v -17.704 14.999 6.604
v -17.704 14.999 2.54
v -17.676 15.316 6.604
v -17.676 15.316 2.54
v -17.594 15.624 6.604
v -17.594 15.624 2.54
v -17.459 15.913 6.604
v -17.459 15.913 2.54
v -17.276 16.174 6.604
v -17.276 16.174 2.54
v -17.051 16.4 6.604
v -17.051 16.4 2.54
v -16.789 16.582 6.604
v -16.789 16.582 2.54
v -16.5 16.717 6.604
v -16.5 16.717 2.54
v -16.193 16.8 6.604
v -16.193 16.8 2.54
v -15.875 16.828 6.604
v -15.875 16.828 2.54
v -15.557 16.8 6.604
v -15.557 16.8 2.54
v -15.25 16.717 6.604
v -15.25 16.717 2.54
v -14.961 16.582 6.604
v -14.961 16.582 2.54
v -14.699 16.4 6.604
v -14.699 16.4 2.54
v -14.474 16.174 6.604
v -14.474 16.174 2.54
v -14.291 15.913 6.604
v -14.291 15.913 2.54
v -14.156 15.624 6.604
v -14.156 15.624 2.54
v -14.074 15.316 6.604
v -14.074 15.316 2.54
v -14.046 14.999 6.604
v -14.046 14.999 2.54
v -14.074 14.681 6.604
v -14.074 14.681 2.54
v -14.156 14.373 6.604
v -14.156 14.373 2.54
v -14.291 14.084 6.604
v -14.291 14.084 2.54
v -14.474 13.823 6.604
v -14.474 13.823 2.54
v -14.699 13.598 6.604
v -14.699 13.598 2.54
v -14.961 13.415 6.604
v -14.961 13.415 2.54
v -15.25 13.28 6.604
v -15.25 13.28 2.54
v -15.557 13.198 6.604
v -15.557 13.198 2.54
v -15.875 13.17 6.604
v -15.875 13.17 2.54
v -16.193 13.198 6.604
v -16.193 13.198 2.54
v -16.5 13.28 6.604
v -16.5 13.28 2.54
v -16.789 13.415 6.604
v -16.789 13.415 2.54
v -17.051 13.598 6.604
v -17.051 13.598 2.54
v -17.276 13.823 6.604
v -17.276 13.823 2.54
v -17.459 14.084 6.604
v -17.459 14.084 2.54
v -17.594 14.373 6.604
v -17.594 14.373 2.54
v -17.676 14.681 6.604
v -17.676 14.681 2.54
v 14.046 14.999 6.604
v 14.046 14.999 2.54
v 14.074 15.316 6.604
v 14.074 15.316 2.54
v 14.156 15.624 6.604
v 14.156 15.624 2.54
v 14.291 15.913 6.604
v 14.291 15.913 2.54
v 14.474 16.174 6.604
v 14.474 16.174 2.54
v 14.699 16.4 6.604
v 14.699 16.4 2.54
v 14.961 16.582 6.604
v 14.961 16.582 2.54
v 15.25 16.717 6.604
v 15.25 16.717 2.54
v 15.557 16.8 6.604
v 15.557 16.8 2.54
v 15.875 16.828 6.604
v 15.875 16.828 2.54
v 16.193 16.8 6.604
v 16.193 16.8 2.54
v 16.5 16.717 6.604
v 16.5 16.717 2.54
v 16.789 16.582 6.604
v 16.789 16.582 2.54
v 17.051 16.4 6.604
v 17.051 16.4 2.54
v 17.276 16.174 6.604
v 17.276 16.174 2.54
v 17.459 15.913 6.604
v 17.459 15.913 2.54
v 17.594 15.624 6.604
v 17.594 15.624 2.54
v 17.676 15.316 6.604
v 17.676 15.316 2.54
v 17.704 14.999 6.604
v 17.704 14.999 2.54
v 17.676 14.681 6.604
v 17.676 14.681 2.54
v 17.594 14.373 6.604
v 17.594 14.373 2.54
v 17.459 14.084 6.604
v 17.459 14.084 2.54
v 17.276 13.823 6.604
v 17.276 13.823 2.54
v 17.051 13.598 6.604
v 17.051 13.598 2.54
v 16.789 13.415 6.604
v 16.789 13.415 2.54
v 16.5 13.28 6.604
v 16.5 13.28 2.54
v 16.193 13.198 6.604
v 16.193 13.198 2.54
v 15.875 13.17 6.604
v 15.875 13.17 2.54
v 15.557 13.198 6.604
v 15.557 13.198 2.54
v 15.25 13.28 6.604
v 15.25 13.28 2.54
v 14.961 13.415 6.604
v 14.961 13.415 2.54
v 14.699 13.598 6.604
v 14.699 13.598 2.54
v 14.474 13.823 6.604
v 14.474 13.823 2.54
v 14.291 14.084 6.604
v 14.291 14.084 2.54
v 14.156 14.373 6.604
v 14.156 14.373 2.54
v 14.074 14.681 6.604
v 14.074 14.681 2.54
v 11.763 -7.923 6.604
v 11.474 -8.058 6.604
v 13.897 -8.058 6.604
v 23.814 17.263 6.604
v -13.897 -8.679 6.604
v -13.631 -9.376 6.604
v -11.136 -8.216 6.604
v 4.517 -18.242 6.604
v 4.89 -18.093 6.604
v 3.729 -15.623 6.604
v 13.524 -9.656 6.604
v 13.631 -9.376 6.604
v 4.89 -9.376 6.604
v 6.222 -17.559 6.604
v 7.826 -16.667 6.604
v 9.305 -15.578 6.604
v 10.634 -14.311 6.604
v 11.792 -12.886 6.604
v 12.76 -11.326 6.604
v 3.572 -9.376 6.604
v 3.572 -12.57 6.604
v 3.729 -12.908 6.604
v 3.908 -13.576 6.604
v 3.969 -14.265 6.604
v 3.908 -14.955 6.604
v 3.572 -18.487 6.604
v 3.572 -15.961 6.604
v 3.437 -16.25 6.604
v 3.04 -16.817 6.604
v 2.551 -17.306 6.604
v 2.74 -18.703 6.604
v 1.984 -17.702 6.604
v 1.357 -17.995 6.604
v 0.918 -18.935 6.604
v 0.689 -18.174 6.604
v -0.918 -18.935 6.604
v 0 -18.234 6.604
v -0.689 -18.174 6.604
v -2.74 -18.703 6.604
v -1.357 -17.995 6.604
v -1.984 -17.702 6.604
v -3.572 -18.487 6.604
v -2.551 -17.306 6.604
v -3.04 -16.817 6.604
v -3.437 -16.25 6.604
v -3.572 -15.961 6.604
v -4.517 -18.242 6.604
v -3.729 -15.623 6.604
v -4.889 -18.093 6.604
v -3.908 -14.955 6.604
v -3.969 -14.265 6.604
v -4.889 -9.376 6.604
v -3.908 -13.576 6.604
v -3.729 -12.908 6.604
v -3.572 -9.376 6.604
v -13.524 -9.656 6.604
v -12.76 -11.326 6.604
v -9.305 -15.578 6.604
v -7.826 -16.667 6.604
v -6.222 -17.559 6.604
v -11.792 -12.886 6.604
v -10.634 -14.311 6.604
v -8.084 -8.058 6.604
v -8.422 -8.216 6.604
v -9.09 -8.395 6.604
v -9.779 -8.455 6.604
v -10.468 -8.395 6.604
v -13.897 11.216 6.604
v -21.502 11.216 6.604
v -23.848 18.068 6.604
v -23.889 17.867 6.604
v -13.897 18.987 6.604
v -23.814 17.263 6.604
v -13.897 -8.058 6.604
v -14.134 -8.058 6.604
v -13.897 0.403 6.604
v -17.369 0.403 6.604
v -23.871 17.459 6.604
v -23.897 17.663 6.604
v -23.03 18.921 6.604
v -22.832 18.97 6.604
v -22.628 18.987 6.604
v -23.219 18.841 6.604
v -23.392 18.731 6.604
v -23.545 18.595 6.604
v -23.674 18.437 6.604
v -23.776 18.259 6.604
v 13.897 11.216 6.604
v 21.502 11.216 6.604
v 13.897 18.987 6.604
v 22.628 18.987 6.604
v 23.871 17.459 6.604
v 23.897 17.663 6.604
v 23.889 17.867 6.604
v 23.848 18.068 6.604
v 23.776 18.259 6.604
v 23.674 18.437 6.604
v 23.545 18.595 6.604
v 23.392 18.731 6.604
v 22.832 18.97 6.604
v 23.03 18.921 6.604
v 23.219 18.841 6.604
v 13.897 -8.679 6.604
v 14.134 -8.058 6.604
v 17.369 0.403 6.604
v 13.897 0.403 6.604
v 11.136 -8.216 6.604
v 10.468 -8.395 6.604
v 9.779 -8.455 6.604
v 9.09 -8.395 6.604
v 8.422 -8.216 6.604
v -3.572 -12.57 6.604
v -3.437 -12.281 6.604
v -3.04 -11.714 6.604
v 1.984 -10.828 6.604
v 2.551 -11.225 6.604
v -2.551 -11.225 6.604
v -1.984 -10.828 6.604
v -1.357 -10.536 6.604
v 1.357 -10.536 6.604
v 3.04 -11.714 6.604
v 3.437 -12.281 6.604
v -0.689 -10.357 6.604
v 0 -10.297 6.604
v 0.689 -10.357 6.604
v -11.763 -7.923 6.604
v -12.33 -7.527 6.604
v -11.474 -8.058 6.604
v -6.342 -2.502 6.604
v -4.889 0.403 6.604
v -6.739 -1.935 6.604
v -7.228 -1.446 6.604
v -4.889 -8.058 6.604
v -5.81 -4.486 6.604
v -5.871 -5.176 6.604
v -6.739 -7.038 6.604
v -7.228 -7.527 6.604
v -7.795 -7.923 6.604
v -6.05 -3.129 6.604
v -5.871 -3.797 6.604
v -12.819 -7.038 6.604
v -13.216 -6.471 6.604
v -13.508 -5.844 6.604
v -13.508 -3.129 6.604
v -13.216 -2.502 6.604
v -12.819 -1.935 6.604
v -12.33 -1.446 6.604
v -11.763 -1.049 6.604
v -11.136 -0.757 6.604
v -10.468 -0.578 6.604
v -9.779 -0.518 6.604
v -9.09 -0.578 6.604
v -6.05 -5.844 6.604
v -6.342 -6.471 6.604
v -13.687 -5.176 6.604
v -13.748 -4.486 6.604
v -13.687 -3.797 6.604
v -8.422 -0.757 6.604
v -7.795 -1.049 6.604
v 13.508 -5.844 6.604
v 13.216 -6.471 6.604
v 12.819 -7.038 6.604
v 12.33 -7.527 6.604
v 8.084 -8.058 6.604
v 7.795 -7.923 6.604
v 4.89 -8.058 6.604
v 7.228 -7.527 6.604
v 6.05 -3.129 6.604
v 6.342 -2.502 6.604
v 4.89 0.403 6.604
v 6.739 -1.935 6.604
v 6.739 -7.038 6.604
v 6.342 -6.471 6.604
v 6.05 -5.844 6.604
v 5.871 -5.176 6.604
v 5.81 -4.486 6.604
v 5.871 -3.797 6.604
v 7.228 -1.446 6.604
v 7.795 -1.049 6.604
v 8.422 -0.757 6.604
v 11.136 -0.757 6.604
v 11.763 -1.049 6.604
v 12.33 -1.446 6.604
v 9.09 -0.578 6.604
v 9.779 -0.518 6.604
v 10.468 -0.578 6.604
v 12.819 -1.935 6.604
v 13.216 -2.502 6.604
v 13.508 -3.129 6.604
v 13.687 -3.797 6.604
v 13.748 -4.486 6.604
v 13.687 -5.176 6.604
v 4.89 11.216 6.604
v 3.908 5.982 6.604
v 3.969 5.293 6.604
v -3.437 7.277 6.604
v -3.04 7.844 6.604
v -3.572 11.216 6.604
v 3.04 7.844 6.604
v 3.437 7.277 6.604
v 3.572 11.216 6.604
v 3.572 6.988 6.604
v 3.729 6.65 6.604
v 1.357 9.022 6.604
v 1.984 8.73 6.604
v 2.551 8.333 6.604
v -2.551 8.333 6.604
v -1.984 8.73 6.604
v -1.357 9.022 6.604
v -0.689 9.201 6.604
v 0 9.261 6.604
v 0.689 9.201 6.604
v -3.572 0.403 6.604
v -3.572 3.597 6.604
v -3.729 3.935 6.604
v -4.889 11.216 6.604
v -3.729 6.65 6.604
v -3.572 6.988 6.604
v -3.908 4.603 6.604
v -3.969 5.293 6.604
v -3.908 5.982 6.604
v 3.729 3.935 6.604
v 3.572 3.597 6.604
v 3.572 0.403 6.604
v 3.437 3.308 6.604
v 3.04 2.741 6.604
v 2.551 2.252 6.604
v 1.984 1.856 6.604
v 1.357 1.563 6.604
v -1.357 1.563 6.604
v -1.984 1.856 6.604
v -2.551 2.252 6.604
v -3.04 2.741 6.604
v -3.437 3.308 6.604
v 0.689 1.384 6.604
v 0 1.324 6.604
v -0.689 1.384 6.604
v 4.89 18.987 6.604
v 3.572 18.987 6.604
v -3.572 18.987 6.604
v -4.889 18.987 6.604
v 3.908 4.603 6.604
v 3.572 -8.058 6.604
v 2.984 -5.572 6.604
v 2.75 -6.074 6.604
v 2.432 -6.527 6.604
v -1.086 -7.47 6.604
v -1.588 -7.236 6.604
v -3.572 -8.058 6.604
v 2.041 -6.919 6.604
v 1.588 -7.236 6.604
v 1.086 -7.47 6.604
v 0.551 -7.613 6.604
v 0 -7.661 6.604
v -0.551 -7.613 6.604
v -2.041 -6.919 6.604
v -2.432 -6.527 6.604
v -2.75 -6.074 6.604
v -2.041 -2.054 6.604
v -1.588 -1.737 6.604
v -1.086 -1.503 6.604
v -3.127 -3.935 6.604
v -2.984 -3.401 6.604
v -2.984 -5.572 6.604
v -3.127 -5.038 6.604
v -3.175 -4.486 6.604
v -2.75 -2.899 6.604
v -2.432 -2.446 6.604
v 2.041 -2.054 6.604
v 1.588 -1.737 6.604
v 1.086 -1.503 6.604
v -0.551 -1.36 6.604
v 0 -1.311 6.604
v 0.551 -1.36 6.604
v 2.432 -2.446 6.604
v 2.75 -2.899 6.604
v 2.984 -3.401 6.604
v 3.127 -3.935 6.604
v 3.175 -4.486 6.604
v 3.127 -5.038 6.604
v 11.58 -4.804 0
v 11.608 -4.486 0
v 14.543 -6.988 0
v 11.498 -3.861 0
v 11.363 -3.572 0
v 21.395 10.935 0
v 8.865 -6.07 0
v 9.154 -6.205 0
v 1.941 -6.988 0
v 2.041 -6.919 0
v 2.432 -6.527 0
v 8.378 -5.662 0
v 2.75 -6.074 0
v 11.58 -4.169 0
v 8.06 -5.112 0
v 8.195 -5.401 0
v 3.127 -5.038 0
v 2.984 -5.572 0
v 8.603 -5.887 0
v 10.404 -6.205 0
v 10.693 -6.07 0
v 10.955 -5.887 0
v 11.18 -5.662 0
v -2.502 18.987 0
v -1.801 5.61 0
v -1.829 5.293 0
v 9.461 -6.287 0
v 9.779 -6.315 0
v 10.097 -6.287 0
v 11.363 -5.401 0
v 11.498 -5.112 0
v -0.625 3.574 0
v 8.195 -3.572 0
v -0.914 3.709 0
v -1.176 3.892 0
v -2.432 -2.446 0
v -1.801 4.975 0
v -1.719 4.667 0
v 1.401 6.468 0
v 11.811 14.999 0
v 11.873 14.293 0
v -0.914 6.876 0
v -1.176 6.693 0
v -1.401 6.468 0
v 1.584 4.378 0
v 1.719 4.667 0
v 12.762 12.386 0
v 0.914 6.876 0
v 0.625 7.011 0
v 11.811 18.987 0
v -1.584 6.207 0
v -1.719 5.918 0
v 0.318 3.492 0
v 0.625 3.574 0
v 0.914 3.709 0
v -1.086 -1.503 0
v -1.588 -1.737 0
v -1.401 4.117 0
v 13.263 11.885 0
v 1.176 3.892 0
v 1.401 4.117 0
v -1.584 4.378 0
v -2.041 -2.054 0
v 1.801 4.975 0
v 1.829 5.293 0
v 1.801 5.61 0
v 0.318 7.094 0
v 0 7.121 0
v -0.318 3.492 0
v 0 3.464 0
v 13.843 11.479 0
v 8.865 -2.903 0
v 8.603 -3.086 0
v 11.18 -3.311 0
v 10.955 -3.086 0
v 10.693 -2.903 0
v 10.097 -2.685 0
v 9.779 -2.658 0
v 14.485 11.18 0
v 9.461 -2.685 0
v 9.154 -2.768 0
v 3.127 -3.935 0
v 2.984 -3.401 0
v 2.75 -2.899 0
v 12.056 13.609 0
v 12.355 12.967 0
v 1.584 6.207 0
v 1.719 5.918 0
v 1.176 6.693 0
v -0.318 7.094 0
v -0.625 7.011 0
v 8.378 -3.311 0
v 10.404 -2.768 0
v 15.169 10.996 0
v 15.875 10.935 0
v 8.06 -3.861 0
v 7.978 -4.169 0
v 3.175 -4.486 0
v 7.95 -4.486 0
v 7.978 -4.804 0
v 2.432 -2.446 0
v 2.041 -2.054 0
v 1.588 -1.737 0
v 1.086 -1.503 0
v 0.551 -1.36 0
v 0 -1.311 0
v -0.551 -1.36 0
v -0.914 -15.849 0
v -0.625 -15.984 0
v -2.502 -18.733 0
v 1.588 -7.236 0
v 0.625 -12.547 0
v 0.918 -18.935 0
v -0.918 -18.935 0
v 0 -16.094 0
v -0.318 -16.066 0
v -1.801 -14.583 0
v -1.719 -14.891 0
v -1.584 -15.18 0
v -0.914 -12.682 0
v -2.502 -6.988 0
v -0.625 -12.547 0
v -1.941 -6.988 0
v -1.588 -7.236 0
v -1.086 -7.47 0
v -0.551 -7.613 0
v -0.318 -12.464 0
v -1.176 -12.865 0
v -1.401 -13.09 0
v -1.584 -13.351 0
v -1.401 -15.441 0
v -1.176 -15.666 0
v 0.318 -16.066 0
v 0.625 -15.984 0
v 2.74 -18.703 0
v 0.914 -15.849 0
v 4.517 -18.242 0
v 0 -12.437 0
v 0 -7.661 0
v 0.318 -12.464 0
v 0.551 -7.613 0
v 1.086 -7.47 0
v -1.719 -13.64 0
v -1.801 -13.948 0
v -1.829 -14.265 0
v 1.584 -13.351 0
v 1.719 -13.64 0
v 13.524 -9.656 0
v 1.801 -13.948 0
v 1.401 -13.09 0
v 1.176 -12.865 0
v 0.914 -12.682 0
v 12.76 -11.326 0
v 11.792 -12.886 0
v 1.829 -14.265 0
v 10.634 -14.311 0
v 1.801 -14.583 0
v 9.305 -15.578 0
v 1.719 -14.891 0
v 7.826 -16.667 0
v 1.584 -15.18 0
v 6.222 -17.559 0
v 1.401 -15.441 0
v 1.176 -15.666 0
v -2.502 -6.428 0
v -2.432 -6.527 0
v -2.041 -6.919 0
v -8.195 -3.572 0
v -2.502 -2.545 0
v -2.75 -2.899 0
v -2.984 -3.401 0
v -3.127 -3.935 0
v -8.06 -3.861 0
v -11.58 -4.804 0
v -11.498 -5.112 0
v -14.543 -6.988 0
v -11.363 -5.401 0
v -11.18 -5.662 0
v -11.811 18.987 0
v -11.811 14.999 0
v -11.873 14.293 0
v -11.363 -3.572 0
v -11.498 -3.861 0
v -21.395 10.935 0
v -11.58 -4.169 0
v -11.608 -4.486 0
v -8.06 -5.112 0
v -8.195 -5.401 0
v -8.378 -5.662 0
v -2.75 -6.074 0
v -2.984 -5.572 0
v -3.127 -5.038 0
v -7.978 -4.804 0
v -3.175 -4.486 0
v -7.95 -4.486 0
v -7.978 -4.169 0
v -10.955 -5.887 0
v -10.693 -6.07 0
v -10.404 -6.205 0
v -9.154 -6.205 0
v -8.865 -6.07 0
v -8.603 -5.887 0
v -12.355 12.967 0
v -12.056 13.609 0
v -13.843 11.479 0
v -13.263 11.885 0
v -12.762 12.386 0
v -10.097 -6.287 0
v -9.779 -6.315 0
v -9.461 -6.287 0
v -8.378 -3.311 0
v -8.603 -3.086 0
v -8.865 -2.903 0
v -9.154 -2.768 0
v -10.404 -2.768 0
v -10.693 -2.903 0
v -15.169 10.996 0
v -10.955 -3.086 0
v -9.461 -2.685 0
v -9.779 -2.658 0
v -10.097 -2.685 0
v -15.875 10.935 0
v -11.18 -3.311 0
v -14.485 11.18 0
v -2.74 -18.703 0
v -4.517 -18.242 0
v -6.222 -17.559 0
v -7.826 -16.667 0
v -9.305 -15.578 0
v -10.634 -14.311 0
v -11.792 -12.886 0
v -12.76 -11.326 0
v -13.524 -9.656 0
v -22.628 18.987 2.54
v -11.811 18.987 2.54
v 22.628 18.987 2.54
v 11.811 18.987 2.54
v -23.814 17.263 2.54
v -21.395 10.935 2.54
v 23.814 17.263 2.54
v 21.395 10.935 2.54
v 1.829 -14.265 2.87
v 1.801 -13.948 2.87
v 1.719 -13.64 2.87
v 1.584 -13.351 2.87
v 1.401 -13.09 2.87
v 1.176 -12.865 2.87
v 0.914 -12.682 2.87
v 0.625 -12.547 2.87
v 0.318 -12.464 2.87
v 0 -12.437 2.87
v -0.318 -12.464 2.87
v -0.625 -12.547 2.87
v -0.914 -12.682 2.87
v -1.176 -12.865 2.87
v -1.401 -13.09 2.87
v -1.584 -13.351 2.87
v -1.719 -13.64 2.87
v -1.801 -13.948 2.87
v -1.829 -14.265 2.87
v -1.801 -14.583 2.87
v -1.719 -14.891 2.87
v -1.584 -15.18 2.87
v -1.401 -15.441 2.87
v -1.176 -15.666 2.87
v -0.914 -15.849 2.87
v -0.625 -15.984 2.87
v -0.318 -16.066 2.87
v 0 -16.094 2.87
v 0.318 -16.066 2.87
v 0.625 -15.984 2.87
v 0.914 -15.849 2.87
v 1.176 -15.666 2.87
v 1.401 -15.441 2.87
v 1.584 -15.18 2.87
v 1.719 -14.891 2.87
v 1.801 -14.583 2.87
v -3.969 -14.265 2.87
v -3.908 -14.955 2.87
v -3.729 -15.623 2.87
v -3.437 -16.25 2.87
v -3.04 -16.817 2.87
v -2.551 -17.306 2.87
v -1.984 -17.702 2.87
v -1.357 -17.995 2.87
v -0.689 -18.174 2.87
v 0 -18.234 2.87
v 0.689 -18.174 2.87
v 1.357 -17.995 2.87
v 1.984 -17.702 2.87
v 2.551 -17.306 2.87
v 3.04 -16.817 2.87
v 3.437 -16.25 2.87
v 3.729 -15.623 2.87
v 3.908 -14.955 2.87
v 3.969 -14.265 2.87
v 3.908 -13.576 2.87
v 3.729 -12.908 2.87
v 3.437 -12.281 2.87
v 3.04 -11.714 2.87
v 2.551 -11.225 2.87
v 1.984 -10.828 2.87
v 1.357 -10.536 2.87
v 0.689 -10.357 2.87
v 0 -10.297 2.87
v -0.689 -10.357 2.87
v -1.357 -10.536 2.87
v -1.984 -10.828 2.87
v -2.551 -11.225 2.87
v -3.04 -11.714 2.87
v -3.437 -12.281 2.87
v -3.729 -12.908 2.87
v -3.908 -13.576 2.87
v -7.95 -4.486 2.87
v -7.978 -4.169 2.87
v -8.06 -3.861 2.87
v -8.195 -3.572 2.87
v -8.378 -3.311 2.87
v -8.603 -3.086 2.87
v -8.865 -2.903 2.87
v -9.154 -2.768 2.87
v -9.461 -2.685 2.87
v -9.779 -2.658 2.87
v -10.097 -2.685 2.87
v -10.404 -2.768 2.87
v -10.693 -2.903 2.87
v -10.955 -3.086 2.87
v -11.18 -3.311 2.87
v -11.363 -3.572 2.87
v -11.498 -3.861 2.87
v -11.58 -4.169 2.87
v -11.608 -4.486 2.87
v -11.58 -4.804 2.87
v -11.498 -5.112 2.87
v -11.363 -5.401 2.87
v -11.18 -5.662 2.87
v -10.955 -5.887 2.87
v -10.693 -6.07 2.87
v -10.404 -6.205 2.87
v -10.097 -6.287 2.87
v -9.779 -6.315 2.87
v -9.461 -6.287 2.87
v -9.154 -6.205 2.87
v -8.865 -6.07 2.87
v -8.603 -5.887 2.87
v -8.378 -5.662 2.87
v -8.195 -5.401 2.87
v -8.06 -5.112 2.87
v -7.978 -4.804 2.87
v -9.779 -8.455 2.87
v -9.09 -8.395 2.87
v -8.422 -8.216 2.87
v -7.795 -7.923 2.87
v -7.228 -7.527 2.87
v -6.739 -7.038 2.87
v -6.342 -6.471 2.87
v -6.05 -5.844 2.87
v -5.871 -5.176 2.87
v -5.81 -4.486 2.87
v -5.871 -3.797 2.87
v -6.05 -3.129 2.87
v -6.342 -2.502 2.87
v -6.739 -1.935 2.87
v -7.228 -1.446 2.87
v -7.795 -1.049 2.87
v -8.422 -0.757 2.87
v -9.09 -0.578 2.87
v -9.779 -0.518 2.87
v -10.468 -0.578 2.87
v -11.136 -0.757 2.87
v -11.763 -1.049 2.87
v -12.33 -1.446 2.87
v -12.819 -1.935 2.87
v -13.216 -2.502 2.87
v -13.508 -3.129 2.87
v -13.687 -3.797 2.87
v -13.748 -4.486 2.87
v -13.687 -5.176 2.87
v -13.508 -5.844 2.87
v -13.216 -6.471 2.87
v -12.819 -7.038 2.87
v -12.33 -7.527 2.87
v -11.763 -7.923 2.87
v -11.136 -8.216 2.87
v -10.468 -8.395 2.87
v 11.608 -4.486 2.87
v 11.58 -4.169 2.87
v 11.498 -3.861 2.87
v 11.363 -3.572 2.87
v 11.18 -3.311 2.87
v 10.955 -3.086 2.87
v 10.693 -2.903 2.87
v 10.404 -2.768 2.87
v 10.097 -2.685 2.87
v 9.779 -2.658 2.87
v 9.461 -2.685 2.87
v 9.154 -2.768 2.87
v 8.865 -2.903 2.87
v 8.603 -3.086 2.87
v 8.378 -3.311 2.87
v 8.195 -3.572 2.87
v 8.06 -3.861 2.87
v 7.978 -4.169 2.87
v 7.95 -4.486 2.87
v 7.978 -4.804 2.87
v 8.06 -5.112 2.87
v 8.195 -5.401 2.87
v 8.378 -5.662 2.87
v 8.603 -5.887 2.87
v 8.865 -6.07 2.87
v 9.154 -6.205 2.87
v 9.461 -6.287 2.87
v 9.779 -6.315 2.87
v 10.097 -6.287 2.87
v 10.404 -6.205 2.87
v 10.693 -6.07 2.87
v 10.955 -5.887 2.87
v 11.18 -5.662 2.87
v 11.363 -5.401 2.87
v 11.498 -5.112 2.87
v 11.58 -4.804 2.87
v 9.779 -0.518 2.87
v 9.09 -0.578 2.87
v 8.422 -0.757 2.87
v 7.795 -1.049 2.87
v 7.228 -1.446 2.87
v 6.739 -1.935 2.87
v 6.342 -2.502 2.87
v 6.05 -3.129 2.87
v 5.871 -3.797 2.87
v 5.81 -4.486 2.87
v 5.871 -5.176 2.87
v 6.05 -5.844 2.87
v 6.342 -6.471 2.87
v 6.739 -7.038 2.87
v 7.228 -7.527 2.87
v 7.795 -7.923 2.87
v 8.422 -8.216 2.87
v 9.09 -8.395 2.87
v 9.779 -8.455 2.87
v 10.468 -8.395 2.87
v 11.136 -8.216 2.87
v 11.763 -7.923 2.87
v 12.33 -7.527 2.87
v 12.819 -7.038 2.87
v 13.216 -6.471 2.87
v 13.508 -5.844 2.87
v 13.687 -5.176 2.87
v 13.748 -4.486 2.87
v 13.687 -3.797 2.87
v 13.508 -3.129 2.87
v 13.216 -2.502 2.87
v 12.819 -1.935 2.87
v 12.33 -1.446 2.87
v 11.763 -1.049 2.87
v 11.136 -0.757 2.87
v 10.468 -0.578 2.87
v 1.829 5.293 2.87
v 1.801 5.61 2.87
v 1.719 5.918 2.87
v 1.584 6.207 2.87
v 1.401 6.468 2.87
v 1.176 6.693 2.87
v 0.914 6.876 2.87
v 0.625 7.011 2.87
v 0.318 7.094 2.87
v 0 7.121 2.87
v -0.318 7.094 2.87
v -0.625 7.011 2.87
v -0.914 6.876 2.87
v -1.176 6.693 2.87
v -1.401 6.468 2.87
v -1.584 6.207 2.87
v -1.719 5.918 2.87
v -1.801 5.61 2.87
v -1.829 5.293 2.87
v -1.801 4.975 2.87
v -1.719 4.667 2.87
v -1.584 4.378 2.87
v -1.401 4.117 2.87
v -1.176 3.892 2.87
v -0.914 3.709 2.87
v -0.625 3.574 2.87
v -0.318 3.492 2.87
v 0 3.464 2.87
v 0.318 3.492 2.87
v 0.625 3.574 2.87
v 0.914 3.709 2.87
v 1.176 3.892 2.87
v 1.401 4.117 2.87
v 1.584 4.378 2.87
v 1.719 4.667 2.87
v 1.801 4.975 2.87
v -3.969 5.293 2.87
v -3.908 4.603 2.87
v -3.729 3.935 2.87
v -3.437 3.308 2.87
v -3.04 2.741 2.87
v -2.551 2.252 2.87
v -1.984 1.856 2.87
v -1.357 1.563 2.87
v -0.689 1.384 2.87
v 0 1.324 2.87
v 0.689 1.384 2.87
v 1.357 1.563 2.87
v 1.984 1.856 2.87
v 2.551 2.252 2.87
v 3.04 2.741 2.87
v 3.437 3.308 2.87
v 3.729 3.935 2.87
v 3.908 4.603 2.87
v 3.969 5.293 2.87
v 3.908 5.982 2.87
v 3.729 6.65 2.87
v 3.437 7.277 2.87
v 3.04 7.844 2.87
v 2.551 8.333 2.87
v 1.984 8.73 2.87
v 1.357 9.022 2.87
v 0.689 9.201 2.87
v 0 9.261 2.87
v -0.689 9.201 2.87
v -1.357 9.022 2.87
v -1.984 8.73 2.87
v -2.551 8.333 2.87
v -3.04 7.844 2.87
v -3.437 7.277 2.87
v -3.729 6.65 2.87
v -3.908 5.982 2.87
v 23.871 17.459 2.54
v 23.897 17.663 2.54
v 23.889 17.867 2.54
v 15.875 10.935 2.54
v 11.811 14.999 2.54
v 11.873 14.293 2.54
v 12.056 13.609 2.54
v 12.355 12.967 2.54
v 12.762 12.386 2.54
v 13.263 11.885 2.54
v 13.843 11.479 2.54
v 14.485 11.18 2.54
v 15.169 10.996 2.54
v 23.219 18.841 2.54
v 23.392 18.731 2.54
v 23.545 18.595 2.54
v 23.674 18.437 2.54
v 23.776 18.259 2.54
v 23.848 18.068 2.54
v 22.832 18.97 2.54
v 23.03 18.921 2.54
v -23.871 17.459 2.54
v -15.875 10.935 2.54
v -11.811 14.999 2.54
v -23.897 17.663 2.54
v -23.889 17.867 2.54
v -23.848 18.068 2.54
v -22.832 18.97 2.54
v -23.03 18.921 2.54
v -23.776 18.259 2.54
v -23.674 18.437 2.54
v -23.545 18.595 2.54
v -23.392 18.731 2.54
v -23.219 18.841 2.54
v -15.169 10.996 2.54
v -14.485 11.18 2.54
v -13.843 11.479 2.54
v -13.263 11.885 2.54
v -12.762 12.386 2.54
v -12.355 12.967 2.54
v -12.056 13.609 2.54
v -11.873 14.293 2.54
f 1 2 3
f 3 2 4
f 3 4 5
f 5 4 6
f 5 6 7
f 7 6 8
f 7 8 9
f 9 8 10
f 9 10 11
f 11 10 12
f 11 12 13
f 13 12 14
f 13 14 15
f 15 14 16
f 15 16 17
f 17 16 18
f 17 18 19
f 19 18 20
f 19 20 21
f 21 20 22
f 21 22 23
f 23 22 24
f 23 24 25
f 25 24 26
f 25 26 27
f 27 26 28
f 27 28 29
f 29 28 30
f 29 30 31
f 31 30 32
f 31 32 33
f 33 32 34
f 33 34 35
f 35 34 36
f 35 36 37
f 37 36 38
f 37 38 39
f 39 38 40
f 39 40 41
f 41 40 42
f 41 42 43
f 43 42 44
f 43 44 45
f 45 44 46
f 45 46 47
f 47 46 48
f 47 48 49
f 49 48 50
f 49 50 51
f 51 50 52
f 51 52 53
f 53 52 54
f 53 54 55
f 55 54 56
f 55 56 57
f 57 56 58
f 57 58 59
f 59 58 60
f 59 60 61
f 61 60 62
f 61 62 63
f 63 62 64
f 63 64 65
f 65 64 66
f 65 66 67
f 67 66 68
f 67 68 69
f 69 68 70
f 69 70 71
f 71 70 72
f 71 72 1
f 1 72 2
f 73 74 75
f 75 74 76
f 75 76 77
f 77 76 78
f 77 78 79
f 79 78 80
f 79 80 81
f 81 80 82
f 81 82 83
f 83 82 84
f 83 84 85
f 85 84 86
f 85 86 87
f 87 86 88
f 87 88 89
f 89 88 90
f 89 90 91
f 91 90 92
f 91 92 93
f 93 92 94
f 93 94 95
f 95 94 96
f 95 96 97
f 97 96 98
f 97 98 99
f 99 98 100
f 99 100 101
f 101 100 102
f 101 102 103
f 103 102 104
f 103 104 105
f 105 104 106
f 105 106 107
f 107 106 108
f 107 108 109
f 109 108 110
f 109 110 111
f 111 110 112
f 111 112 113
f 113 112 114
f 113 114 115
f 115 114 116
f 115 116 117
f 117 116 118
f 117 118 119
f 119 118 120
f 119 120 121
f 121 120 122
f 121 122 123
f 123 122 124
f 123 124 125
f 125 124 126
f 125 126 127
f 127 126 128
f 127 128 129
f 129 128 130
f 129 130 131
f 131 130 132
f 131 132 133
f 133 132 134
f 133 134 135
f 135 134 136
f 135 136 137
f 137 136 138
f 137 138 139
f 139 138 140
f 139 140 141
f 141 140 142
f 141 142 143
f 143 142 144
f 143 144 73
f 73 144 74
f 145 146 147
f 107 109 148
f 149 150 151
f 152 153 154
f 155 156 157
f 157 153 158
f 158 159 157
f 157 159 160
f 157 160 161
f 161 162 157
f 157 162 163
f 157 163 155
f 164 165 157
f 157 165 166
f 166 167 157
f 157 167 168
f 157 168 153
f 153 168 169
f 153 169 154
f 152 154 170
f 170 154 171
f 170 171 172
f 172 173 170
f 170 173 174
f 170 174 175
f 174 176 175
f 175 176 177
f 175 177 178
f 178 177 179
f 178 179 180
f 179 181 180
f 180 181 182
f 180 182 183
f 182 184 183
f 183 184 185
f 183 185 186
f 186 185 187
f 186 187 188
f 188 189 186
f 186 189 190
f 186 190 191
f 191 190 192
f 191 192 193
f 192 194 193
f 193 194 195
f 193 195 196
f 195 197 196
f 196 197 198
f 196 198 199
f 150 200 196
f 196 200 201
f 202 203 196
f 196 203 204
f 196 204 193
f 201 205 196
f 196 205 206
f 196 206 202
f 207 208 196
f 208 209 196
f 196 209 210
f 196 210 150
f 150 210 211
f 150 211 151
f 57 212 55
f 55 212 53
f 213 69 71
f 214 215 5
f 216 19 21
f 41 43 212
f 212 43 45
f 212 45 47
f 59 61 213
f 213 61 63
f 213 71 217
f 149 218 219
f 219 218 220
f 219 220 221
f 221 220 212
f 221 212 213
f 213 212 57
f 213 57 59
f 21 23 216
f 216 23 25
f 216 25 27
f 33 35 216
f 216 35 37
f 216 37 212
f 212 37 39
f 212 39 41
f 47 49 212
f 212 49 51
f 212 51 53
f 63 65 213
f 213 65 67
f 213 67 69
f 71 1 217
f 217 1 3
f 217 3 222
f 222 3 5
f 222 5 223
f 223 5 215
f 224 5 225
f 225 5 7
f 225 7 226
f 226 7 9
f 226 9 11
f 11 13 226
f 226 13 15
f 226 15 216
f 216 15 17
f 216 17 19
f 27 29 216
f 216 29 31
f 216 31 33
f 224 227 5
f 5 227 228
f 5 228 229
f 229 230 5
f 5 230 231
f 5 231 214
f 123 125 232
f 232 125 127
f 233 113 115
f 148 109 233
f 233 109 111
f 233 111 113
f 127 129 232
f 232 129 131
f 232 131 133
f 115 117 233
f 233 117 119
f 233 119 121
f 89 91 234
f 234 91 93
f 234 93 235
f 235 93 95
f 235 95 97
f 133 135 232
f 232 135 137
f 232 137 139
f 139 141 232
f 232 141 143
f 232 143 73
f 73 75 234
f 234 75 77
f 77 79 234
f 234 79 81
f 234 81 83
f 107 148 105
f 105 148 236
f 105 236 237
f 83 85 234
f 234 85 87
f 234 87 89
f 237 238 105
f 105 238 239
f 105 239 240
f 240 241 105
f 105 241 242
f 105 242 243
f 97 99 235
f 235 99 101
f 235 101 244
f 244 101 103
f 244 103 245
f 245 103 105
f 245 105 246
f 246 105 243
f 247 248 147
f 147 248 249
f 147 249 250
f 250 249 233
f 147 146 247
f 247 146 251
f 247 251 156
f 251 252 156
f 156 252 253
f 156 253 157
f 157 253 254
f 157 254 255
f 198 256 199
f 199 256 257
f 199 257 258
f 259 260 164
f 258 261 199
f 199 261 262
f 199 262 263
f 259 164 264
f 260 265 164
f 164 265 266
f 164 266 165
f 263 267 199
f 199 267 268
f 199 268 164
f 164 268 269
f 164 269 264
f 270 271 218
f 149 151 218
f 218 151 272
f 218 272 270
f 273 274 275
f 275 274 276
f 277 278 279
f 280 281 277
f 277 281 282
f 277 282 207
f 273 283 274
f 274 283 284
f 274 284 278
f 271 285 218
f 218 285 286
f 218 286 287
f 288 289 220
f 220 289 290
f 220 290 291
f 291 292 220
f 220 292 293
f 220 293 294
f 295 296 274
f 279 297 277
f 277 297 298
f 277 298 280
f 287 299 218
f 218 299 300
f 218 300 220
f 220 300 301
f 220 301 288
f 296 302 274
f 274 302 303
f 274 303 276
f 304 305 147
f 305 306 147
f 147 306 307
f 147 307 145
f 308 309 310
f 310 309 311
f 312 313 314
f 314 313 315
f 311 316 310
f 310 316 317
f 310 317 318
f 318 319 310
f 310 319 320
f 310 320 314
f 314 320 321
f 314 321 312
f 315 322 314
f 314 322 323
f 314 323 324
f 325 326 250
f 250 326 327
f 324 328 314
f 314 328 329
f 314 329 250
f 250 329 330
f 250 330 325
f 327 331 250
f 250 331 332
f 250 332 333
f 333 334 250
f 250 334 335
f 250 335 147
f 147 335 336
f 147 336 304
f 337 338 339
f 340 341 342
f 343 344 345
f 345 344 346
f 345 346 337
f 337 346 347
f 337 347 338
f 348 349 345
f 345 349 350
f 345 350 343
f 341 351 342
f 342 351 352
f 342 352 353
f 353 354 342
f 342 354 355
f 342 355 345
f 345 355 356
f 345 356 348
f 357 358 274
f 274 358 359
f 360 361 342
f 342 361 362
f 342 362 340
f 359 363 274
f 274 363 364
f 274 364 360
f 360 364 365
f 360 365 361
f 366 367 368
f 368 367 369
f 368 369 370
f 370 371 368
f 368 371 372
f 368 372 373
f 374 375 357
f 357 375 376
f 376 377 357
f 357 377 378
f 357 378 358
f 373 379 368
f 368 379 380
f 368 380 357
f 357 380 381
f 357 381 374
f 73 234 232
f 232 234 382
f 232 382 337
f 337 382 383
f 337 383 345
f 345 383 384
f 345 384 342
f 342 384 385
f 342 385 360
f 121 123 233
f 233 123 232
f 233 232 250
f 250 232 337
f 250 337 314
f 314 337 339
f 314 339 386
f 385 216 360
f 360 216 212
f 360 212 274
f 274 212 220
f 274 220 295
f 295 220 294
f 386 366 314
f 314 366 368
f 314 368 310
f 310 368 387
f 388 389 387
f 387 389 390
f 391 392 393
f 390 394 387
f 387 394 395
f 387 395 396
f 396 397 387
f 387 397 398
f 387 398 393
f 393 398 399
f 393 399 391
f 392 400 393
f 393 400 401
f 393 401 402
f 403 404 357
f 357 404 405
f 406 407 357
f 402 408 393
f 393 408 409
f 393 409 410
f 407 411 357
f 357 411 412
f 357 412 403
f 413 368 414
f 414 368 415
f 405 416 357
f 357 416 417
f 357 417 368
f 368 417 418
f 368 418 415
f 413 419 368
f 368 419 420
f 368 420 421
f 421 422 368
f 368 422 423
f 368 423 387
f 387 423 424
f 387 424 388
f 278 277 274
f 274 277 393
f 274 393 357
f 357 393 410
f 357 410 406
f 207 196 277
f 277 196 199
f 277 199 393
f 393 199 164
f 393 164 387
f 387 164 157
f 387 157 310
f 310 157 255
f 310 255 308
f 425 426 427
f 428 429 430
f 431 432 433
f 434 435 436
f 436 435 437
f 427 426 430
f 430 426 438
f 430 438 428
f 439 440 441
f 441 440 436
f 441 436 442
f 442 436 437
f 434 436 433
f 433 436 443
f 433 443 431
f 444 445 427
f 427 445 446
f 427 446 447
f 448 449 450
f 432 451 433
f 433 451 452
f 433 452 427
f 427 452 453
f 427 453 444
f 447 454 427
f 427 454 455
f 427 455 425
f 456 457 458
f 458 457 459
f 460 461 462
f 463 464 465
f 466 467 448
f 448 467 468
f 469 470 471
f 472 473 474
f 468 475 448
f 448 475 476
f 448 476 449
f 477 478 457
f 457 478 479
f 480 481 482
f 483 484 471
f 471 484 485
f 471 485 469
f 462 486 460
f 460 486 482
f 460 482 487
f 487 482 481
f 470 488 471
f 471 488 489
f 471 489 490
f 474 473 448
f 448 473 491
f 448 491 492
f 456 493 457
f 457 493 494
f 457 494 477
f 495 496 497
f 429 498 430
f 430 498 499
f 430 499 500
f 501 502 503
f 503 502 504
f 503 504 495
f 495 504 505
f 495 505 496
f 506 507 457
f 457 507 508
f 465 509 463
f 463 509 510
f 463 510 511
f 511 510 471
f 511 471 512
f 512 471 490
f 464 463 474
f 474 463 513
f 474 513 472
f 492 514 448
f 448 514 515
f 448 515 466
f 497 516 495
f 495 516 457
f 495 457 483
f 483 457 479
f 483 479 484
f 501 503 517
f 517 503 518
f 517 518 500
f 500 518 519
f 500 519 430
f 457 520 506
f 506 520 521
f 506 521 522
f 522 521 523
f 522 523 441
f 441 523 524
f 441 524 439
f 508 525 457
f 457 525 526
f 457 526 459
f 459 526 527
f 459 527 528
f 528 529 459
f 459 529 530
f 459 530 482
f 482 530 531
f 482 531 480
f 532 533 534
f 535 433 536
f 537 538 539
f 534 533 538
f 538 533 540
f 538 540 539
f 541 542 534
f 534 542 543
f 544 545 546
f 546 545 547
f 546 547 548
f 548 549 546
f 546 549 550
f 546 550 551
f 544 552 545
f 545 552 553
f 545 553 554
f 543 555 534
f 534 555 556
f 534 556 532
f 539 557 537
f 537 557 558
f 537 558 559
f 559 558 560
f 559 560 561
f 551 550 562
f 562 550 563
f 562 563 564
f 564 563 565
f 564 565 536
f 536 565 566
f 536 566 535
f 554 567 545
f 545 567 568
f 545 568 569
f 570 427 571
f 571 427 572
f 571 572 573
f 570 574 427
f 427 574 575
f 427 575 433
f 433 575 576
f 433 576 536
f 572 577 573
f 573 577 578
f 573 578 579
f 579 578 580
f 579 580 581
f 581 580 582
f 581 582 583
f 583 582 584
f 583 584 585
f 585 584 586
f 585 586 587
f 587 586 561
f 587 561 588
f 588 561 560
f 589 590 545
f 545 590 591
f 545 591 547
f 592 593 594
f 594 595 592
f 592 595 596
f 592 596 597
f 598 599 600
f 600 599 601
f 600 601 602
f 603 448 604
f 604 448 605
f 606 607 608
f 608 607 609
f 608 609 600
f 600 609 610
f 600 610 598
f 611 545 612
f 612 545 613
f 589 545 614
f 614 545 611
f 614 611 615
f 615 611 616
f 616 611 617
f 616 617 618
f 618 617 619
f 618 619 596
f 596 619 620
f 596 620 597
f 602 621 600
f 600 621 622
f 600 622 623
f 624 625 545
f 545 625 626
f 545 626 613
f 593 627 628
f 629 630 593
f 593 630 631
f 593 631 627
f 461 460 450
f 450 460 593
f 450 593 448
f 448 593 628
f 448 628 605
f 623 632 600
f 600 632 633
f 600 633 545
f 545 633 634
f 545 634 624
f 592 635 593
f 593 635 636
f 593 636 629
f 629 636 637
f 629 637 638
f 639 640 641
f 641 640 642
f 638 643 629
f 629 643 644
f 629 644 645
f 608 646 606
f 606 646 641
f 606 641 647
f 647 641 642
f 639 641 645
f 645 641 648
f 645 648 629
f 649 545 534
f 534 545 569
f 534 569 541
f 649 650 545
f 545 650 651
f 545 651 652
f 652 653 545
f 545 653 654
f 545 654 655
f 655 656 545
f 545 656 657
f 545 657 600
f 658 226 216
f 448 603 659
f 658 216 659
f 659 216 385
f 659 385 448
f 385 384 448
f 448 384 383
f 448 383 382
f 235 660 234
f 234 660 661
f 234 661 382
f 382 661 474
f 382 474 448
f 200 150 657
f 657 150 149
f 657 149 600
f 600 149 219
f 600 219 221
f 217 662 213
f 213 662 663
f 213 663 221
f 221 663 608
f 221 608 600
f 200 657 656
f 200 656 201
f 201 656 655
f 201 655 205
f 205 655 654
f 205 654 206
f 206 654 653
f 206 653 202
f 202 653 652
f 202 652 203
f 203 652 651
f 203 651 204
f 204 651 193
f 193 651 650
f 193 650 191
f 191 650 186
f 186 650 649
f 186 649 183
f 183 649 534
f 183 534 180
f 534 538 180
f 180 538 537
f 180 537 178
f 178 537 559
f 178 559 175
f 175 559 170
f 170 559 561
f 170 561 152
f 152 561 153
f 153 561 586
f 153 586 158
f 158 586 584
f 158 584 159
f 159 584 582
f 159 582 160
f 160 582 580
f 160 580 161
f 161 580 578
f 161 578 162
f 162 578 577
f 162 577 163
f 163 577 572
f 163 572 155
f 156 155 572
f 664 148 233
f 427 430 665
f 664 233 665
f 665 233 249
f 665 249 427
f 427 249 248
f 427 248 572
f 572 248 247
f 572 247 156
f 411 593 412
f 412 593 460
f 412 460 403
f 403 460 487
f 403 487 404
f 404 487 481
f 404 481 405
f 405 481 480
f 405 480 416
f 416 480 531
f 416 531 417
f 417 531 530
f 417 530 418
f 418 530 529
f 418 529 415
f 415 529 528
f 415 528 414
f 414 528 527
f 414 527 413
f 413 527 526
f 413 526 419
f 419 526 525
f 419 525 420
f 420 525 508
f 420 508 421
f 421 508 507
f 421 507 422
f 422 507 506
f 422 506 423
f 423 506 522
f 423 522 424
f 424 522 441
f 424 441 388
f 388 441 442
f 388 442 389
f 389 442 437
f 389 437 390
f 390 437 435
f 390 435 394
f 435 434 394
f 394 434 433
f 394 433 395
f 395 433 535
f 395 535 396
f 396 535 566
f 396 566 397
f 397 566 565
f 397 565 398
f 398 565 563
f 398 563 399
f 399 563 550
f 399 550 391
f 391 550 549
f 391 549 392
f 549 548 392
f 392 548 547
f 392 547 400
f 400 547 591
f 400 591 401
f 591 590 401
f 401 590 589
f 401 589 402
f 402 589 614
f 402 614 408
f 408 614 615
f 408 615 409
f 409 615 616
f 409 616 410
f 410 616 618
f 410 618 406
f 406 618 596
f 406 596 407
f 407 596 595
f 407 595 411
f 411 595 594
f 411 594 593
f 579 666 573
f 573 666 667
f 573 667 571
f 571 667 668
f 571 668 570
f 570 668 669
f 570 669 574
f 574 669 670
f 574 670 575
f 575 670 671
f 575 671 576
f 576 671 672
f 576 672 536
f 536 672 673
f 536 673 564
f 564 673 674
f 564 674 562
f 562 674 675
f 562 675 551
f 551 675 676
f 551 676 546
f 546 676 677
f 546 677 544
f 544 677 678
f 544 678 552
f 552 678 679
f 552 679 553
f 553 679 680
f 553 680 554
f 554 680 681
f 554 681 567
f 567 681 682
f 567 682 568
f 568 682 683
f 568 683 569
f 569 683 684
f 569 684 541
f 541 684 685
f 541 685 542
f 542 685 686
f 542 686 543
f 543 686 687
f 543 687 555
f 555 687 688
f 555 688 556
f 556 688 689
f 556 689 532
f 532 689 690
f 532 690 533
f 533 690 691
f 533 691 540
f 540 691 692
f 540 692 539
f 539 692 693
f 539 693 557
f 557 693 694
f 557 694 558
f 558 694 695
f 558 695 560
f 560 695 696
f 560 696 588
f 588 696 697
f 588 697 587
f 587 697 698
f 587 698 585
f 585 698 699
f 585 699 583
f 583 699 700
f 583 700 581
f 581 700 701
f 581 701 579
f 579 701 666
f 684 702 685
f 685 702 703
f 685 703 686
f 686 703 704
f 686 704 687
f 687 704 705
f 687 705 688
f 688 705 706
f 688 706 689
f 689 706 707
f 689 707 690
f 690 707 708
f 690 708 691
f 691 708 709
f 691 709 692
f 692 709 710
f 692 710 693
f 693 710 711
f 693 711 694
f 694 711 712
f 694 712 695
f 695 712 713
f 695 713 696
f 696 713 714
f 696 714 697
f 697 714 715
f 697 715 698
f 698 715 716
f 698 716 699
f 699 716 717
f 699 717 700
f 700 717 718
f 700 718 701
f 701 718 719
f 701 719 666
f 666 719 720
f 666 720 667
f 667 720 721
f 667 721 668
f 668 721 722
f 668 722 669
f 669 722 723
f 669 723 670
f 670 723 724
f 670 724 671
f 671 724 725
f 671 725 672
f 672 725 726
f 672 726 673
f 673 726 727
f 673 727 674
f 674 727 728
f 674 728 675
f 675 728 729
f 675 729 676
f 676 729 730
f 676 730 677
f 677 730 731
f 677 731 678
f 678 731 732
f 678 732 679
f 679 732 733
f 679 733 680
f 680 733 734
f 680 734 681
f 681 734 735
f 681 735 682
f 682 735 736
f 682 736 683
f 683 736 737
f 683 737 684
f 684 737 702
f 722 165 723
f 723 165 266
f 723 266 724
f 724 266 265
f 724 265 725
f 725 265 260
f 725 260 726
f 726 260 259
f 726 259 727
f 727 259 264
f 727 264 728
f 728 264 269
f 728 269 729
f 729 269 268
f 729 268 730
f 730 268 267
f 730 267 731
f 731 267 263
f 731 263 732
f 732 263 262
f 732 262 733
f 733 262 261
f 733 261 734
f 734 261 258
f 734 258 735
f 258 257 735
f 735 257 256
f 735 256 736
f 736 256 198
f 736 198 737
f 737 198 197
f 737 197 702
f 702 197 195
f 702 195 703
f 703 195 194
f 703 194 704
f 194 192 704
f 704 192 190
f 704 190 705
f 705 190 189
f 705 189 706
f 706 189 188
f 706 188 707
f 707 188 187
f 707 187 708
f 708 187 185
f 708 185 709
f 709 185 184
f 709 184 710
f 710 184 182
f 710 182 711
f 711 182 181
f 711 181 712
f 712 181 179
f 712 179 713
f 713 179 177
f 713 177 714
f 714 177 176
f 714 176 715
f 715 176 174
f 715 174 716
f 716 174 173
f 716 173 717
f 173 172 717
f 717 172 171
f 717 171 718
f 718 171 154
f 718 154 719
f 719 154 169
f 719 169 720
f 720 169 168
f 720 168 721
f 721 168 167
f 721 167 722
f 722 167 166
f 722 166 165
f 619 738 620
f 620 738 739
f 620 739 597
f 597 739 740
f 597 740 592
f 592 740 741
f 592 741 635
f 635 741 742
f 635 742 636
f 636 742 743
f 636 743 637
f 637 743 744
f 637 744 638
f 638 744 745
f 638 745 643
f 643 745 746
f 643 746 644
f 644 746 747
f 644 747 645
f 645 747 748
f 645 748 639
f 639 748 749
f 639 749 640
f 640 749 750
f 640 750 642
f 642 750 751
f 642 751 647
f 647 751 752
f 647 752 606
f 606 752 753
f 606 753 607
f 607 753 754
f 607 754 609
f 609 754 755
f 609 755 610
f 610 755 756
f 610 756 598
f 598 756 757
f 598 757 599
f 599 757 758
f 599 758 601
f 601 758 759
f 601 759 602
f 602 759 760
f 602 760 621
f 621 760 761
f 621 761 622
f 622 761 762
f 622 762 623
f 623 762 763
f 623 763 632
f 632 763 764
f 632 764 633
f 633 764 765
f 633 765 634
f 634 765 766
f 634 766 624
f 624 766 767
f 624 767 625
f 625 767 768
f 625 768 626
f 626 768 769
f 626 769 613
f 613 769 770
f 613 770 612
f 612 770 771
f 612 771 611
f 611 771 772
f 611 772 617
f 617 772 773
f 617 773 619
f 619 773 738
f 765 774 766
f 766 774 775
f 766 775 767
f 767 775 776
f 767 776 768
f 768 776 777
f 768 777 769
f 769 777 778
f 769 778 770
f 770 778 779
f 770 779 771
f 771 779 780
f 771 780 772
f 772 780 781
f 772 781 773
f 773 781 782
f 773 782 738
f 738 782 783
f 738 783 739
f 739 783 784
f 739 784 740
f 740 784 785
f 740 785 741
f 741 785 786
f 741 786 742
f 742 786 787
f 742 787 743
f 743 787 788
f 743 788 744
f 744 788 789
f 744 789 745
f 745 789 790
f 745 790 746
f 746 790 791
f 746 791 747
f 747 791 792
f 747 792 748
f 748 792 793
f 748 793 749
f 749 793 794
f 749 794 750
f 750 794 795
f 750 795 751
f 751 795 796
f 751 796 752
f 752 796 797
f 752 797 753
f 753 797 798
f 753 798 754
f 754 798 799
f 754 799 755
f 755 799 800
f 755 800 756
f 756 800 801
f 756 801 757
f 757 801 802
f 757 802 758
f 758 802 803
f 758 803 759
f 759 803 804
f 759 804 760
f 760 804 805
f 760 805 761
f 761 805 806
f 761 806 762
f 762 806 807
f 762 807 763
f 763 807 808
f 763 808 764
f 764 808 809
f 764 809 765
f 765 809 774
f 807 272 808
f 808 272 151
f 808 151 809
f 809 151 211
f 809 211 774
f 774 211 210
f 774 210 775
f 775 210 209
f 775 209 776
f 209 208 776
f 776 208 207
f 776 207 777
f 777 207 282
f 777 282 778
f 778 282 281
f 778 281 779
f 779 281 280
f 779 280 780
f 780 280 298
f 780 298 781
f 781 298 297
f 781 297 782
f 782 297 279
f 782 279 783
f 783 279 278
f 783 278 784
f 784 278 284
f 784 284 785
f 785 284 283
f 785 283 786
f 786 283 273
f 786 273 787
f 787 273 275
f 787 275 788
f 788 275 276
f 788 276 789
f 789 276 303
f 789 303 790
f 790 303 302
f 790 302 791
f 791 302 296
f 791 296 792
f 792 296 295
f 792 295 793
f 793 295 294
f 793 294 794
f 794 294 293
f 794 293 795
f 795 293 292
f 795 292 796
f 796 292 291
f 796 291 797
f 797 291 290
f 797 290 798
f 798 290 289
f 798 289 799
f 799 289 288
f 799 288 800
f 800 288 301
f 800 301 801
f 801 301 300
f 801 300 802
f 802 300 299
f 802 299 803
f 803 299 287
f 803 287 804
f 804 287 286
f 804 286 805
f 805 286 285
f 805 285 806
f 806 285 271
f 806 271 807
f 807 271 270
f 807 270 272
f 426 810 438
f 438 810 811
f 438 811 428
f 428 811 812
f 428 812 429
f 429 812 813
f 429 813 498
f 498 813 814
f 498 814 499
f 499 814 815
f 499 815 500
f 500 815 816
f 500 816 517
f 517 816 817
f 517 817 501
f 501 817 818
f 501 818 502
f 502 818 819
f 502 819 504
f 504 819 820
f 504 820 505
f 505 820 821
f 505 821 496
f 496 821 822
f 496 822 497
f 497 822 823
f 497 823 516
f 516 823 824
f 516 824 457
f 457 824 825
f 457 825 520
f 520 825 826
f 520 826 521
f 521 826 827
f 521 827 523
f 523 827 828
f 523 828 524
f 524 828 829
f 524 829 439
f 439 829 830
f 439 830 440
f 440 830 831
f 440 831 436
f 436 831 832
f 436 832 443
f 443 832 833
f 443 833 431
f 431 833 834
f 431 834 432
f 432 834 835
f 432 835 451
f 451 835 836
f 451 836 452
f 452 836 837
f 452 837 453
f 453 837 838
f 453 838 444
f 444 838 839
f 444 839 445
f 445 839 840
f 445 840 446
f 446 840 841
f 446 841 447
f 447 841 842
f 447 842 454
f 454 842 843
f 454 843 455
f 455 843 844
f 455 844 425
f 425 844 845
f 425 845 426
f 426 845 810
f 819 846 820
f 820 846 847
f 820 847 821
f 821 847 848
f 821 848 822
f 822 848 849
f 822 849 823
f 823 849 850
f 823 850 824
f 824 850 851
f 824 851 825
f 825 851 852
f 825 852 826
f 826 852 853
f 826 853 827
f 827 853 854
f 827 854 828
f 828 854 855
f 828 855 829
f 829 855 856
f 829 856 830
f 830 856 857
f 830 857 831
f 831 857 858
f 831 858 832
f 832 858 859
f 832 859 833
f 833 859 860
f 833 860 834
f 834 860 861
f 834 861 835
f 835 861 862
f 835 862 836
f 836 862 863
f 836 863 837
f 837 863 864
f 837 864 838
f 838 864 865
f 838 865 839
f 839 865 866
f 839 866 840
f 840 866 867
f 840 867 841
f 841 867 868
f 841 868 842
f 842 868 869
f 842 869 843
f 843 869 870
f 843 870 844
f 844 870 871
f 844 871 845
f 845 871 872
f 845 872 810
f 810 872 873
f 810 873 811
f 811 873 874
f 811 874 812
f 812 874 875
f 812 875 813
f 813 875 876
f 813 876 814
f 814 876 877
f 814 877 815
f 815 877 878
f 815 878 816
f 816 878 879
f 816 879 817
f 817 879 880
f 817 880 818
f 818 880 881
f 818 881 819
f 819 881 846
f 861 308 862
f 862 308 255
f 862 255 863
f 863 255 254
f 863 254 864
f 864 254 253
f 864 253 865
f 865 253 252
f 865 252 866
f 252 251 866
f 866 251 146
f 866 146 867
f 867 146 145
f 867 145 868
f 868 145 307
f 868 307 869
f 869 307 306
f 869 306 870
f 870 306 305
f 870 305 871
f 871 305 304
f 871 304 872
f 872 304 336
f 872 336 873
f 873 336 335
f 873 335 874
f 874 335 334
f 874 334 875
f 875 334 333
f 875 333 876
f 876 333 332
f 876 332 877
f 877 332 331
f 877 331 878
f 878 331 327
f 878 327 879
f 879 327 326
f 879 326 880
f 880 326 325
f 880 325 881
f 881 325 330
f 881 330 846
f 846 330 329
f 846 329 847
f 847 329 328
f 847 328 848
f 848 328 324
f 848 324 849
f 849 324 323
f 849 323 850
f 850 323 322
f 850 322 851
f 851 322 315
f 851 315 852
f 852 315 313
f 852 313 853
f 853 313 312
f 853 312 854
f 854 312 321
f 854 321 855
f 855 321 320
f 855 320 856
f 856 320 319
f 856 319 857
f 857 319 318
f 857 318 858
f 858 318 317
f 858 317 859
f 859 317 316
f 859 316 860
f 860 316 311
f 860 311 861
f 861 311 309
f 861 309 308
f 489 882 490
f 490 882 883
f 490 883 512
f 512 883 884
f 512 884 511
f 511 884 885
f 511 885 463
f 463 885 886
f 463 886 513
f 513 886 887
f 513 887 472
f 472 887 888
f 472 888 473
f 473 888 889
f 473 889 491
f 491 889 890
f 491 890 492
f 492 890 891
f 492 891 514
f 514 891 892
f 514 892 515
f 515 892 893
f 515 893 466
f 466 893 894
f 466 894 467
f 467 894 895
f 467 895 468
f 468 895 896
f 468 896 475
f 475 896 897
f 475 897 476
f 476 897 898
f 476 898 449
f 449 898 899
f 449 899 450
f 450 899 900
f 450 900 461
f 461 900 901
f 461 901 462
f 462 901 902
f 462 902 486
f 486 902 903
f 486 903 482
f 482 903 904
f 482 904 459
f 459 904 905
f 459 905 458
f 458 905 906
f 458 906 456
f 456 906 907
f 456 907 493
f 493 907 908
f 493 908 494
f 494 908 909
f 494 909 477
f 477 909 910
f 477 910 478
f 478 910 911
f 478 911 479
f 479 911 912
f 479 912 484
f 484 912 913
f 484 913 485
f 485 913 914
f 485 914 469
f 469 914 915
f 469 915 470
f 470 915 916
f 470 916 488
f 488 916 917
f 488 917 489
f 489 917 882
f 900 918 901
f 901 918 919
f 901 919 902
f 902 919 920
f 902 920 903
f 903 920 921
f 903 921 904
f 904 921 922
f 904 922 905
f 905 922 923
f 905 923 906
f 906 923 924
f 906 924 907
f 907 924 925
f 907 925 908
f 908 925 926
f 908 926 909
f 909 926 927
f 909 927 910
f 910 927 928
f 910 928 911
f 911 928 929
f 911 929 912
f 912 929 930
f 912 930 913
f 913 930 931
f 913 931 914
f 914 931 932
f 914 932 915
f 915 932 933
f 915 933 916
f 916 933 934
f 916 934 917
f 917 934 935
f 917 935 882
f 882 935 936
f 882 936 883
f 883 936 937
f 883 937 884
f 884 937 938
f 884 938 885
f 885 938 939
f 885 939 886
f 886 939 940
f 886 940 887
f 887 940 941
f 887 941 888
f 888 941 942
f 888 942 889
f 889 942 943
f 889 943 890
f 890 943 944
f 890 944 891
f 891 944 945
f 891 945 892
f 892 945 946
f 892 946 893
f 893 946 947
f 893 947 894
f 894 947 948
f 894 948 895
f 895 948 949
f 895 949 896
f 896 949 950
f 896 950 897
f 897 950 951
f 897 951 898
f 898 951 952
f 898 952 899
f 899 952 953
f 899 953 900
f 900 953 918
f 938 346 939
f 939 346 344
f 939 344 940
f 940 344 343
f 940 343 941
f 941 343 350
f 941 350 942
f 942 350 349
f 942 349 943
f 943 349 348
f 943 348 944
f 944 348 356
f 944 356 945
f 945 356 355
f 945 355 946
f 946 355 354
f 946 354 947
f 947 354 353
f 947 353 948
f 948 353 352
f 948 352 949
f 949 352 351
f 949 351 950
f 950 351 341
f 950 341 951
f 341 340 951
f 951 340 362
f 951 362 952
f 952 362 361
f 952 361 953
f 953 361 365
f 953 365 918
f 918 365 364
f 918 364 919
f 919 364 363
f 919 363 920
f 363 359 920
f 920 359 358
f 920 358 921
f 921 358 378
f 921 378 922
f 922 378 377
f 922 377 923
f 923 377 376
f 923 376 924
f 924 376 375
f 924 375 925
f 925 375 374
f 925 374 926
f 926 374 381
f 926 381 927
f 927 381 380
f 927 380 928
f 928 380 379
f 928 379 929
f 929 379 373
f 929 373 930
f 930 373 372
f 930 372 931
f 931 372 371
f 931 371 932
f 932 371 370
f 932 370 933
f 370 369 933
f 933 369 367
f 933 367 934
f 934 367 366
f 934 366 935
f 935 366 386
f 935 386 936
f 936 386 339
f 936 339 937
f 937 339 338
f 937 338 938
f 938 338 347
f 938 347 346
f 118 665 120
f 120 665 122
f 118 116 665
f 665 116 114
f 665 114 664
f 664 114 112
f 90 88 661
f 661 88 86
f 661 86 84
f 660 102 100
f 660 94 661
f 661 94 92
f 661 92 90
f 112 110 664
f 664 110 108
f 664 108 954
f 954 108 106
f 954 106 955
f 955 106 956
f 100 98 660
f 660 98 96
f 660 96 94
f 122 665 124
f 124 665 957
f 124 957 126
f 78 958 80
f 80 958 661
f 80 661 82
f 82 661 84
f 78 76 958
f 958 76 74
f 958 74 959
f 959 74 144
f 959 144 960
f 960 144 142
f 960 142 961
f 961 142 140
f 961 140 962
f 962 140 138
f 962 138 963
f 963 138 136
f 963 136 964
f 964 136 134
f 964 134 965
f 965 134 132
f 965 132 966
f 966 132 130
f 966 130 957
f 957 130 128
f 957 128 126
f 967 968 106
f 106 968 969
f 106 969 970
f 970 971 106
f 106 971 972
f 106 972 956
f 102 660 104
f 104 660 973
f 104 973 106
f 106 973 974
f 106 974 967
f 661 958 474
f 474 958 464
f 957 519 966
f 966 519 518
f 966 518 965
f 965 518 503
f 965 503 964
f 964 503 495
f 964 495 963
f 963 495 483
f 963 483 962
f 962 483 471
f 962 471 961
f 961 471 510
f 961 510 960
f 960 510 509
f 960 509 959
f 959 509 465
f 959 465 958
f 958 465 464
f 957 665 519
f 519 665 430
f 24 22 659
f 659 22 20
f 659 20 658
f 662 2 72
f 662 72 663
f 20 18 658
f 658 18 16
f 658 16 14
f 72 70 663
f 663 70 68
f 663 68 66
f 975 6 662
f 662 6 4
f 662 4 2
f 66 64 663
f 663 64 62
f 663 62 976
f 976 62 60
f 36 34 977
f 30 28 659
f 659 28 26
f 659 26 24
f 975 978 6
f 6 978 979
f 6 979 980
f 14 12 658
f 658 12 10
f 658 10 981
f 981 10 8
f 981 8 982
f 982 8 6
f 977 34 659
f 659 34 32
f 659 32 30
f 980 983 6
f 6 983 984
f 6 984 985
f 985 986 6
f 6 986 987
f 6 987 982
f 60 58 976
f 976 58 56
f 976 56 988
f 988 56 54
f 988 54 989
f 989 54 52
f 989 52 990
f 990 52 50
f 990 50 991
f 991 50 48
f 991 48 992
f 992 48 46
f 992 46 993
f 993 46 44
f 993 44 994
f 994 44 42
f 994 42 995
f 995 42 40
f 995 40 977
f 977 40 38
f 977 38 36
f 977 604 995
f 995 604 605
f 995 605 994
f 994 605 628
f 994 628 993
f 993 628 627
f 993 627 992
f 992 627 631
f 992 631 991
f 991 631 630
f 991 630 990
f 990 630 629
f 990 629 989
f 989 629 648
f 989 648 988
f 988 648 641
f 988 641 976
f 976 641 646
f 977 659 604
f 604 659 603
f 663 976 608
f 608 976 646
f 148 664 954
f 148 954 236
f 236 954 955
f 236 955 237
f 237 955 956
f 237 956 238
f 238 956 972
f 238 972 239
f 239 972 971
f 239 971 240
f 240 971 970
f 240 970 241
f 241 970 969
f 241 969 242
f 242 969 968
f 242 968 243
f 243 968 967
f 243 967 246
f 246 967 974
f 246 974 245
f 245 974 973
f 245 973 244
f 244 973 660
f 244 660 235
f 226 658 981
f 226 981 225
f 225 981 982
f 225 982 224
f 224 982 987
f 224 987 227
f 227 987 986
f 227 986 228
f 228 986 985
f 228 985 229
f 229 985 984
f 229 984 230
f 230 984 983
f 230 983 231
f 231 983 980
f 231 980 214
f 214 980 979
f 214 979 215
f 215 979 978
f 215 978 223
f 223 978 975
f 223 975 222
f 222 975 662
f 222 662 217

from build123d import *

# Parameters (mm, degrees)
SKETCH2_R                                           = 3.175
BOSS_EXTRUDE1_DEPTH                                 = 6.604
CBORE_FOR_6_BINDING_HEAD_MACHINE_SCREW1_D           = 3.6576
CBORE_FOR_6_BINDING_HEAD_MACHINE_SCREW1_CBORE_D     = 7.9375
CBORE_FOR_6_BINDING_HEAD_MACHINE_SCREW1_CBORE_DEPTH = 3.7338
F_6_CLEARANCE_HOLE1_D                               = 3.6576
CUT_EXTRUDE1_DEPTH                                  = 2.54
FILLET1_R                                           = 1.27


with BuildPart() as part:
    # Sketch2 → Boss-Extrude1 (new body)
    with BuildSketch(Plane.XY):
        with BuildLine():
            Line((24.4729, 18.9865), (13.523558965, -9.656158478))
            ThreePointArc((13.523558965, -9.656158478), (0, -18.964454722), (-13.523558965, -9.656158478))
            Line((-13.523558965, -9.656158478), (-24.4729, 18.9865))
            Line((-24.4729, 18.9865), (24.4729, 18.9865))
        make_face()
        with Locations(Location((0, -4.486454722, 0), (0, 0, 180))):
            Circle(SKETCH2_R, mode=Mode.SUBTRACT)
    extrude(amount=BOSS_EXTRUDE1_DEPTH)

    # CBORE for #6 Binding Head Machine Screw1 (through all)
    with Locations(Plane.XY.offset(6.604)):
        with Locations((0, -14.265454722), (0, 5.292545278), (9.779, -4.486454722), (-9.779, -4.486454722)):
            CounterBoreHole(CBORE_FOR_6_BINDING_HEAD_MACHINE_SCREW1_D / 2, CBORE_FOR_6_BINDING_HEAD_MACHINE_SCREW1_CBORE_D / 2, CBORE_FOR_6_BINDING_HEAD_MACHINE_SCREW1_CBORE_DEPTH)

    # #6 Clearance Hole1 (through all)
    with Locations(Plane(origin=(0, 0, 0), x_dir=(-1, 0, 0), z_dir=(0, 0, -1))):
        with Locations((15.875, 14.9987), (-15.875, 14.9987)):
            Hole(F_6_CLEARANCE_HOLE1_D / 2)

    # Sketch9 → Cut-Extrude1 (cut)
    with BuildSketch(Plane(origin=(0, 0, 0), x_dir=(-1, 0, 0), z_dir=(0, 0, -1))):
        with BuildLine():
            Line((-11.811, 14.9987), (-11.811, 18.9865))
            Line((-11.811, 18.9865), (-24.4729, 18.9865))
            Line((-24.4729, 18.9865), (-21.394906935, 10.9347))
            Line((-21.394906935, 10.9347), (-15.875, 10.9347))
            ThreePointArc((-15.875, 10.9347), (-13.001318041, 12.125018041), (-11.811, 14.9987))
        make_face()
        with BuildLine():
            Line((11.811, 14.9987), (11.811, 18.9865))
            Line((11.811, 18.9865), (24.4729, 18.9865))
            Line((24.4729, 18.9865), (21.394906935, 10.9347))
            Line((21.394906935, 10.9347), (15.875, 10.9347))
            ThreePointArc((15.875, 10.9347), (13.001318041, 12.125018041), (11.811, 14.9987))
        make_face()
    extrude(amount=-CUT_EXTRUDE1_DEPTH, mode=Mode.SUBTRACT)

    # Fillet1
    fillet1_edges = [part.edges().sort_by_distance(p)[0] for p in [
        (24.4729, 18.9865, 4.572),
        (-24.4729, 18.9865, 4.572),
    ]]
    fillet(fillet1_edges, radius=FILLET1_R)


solid = part.part
